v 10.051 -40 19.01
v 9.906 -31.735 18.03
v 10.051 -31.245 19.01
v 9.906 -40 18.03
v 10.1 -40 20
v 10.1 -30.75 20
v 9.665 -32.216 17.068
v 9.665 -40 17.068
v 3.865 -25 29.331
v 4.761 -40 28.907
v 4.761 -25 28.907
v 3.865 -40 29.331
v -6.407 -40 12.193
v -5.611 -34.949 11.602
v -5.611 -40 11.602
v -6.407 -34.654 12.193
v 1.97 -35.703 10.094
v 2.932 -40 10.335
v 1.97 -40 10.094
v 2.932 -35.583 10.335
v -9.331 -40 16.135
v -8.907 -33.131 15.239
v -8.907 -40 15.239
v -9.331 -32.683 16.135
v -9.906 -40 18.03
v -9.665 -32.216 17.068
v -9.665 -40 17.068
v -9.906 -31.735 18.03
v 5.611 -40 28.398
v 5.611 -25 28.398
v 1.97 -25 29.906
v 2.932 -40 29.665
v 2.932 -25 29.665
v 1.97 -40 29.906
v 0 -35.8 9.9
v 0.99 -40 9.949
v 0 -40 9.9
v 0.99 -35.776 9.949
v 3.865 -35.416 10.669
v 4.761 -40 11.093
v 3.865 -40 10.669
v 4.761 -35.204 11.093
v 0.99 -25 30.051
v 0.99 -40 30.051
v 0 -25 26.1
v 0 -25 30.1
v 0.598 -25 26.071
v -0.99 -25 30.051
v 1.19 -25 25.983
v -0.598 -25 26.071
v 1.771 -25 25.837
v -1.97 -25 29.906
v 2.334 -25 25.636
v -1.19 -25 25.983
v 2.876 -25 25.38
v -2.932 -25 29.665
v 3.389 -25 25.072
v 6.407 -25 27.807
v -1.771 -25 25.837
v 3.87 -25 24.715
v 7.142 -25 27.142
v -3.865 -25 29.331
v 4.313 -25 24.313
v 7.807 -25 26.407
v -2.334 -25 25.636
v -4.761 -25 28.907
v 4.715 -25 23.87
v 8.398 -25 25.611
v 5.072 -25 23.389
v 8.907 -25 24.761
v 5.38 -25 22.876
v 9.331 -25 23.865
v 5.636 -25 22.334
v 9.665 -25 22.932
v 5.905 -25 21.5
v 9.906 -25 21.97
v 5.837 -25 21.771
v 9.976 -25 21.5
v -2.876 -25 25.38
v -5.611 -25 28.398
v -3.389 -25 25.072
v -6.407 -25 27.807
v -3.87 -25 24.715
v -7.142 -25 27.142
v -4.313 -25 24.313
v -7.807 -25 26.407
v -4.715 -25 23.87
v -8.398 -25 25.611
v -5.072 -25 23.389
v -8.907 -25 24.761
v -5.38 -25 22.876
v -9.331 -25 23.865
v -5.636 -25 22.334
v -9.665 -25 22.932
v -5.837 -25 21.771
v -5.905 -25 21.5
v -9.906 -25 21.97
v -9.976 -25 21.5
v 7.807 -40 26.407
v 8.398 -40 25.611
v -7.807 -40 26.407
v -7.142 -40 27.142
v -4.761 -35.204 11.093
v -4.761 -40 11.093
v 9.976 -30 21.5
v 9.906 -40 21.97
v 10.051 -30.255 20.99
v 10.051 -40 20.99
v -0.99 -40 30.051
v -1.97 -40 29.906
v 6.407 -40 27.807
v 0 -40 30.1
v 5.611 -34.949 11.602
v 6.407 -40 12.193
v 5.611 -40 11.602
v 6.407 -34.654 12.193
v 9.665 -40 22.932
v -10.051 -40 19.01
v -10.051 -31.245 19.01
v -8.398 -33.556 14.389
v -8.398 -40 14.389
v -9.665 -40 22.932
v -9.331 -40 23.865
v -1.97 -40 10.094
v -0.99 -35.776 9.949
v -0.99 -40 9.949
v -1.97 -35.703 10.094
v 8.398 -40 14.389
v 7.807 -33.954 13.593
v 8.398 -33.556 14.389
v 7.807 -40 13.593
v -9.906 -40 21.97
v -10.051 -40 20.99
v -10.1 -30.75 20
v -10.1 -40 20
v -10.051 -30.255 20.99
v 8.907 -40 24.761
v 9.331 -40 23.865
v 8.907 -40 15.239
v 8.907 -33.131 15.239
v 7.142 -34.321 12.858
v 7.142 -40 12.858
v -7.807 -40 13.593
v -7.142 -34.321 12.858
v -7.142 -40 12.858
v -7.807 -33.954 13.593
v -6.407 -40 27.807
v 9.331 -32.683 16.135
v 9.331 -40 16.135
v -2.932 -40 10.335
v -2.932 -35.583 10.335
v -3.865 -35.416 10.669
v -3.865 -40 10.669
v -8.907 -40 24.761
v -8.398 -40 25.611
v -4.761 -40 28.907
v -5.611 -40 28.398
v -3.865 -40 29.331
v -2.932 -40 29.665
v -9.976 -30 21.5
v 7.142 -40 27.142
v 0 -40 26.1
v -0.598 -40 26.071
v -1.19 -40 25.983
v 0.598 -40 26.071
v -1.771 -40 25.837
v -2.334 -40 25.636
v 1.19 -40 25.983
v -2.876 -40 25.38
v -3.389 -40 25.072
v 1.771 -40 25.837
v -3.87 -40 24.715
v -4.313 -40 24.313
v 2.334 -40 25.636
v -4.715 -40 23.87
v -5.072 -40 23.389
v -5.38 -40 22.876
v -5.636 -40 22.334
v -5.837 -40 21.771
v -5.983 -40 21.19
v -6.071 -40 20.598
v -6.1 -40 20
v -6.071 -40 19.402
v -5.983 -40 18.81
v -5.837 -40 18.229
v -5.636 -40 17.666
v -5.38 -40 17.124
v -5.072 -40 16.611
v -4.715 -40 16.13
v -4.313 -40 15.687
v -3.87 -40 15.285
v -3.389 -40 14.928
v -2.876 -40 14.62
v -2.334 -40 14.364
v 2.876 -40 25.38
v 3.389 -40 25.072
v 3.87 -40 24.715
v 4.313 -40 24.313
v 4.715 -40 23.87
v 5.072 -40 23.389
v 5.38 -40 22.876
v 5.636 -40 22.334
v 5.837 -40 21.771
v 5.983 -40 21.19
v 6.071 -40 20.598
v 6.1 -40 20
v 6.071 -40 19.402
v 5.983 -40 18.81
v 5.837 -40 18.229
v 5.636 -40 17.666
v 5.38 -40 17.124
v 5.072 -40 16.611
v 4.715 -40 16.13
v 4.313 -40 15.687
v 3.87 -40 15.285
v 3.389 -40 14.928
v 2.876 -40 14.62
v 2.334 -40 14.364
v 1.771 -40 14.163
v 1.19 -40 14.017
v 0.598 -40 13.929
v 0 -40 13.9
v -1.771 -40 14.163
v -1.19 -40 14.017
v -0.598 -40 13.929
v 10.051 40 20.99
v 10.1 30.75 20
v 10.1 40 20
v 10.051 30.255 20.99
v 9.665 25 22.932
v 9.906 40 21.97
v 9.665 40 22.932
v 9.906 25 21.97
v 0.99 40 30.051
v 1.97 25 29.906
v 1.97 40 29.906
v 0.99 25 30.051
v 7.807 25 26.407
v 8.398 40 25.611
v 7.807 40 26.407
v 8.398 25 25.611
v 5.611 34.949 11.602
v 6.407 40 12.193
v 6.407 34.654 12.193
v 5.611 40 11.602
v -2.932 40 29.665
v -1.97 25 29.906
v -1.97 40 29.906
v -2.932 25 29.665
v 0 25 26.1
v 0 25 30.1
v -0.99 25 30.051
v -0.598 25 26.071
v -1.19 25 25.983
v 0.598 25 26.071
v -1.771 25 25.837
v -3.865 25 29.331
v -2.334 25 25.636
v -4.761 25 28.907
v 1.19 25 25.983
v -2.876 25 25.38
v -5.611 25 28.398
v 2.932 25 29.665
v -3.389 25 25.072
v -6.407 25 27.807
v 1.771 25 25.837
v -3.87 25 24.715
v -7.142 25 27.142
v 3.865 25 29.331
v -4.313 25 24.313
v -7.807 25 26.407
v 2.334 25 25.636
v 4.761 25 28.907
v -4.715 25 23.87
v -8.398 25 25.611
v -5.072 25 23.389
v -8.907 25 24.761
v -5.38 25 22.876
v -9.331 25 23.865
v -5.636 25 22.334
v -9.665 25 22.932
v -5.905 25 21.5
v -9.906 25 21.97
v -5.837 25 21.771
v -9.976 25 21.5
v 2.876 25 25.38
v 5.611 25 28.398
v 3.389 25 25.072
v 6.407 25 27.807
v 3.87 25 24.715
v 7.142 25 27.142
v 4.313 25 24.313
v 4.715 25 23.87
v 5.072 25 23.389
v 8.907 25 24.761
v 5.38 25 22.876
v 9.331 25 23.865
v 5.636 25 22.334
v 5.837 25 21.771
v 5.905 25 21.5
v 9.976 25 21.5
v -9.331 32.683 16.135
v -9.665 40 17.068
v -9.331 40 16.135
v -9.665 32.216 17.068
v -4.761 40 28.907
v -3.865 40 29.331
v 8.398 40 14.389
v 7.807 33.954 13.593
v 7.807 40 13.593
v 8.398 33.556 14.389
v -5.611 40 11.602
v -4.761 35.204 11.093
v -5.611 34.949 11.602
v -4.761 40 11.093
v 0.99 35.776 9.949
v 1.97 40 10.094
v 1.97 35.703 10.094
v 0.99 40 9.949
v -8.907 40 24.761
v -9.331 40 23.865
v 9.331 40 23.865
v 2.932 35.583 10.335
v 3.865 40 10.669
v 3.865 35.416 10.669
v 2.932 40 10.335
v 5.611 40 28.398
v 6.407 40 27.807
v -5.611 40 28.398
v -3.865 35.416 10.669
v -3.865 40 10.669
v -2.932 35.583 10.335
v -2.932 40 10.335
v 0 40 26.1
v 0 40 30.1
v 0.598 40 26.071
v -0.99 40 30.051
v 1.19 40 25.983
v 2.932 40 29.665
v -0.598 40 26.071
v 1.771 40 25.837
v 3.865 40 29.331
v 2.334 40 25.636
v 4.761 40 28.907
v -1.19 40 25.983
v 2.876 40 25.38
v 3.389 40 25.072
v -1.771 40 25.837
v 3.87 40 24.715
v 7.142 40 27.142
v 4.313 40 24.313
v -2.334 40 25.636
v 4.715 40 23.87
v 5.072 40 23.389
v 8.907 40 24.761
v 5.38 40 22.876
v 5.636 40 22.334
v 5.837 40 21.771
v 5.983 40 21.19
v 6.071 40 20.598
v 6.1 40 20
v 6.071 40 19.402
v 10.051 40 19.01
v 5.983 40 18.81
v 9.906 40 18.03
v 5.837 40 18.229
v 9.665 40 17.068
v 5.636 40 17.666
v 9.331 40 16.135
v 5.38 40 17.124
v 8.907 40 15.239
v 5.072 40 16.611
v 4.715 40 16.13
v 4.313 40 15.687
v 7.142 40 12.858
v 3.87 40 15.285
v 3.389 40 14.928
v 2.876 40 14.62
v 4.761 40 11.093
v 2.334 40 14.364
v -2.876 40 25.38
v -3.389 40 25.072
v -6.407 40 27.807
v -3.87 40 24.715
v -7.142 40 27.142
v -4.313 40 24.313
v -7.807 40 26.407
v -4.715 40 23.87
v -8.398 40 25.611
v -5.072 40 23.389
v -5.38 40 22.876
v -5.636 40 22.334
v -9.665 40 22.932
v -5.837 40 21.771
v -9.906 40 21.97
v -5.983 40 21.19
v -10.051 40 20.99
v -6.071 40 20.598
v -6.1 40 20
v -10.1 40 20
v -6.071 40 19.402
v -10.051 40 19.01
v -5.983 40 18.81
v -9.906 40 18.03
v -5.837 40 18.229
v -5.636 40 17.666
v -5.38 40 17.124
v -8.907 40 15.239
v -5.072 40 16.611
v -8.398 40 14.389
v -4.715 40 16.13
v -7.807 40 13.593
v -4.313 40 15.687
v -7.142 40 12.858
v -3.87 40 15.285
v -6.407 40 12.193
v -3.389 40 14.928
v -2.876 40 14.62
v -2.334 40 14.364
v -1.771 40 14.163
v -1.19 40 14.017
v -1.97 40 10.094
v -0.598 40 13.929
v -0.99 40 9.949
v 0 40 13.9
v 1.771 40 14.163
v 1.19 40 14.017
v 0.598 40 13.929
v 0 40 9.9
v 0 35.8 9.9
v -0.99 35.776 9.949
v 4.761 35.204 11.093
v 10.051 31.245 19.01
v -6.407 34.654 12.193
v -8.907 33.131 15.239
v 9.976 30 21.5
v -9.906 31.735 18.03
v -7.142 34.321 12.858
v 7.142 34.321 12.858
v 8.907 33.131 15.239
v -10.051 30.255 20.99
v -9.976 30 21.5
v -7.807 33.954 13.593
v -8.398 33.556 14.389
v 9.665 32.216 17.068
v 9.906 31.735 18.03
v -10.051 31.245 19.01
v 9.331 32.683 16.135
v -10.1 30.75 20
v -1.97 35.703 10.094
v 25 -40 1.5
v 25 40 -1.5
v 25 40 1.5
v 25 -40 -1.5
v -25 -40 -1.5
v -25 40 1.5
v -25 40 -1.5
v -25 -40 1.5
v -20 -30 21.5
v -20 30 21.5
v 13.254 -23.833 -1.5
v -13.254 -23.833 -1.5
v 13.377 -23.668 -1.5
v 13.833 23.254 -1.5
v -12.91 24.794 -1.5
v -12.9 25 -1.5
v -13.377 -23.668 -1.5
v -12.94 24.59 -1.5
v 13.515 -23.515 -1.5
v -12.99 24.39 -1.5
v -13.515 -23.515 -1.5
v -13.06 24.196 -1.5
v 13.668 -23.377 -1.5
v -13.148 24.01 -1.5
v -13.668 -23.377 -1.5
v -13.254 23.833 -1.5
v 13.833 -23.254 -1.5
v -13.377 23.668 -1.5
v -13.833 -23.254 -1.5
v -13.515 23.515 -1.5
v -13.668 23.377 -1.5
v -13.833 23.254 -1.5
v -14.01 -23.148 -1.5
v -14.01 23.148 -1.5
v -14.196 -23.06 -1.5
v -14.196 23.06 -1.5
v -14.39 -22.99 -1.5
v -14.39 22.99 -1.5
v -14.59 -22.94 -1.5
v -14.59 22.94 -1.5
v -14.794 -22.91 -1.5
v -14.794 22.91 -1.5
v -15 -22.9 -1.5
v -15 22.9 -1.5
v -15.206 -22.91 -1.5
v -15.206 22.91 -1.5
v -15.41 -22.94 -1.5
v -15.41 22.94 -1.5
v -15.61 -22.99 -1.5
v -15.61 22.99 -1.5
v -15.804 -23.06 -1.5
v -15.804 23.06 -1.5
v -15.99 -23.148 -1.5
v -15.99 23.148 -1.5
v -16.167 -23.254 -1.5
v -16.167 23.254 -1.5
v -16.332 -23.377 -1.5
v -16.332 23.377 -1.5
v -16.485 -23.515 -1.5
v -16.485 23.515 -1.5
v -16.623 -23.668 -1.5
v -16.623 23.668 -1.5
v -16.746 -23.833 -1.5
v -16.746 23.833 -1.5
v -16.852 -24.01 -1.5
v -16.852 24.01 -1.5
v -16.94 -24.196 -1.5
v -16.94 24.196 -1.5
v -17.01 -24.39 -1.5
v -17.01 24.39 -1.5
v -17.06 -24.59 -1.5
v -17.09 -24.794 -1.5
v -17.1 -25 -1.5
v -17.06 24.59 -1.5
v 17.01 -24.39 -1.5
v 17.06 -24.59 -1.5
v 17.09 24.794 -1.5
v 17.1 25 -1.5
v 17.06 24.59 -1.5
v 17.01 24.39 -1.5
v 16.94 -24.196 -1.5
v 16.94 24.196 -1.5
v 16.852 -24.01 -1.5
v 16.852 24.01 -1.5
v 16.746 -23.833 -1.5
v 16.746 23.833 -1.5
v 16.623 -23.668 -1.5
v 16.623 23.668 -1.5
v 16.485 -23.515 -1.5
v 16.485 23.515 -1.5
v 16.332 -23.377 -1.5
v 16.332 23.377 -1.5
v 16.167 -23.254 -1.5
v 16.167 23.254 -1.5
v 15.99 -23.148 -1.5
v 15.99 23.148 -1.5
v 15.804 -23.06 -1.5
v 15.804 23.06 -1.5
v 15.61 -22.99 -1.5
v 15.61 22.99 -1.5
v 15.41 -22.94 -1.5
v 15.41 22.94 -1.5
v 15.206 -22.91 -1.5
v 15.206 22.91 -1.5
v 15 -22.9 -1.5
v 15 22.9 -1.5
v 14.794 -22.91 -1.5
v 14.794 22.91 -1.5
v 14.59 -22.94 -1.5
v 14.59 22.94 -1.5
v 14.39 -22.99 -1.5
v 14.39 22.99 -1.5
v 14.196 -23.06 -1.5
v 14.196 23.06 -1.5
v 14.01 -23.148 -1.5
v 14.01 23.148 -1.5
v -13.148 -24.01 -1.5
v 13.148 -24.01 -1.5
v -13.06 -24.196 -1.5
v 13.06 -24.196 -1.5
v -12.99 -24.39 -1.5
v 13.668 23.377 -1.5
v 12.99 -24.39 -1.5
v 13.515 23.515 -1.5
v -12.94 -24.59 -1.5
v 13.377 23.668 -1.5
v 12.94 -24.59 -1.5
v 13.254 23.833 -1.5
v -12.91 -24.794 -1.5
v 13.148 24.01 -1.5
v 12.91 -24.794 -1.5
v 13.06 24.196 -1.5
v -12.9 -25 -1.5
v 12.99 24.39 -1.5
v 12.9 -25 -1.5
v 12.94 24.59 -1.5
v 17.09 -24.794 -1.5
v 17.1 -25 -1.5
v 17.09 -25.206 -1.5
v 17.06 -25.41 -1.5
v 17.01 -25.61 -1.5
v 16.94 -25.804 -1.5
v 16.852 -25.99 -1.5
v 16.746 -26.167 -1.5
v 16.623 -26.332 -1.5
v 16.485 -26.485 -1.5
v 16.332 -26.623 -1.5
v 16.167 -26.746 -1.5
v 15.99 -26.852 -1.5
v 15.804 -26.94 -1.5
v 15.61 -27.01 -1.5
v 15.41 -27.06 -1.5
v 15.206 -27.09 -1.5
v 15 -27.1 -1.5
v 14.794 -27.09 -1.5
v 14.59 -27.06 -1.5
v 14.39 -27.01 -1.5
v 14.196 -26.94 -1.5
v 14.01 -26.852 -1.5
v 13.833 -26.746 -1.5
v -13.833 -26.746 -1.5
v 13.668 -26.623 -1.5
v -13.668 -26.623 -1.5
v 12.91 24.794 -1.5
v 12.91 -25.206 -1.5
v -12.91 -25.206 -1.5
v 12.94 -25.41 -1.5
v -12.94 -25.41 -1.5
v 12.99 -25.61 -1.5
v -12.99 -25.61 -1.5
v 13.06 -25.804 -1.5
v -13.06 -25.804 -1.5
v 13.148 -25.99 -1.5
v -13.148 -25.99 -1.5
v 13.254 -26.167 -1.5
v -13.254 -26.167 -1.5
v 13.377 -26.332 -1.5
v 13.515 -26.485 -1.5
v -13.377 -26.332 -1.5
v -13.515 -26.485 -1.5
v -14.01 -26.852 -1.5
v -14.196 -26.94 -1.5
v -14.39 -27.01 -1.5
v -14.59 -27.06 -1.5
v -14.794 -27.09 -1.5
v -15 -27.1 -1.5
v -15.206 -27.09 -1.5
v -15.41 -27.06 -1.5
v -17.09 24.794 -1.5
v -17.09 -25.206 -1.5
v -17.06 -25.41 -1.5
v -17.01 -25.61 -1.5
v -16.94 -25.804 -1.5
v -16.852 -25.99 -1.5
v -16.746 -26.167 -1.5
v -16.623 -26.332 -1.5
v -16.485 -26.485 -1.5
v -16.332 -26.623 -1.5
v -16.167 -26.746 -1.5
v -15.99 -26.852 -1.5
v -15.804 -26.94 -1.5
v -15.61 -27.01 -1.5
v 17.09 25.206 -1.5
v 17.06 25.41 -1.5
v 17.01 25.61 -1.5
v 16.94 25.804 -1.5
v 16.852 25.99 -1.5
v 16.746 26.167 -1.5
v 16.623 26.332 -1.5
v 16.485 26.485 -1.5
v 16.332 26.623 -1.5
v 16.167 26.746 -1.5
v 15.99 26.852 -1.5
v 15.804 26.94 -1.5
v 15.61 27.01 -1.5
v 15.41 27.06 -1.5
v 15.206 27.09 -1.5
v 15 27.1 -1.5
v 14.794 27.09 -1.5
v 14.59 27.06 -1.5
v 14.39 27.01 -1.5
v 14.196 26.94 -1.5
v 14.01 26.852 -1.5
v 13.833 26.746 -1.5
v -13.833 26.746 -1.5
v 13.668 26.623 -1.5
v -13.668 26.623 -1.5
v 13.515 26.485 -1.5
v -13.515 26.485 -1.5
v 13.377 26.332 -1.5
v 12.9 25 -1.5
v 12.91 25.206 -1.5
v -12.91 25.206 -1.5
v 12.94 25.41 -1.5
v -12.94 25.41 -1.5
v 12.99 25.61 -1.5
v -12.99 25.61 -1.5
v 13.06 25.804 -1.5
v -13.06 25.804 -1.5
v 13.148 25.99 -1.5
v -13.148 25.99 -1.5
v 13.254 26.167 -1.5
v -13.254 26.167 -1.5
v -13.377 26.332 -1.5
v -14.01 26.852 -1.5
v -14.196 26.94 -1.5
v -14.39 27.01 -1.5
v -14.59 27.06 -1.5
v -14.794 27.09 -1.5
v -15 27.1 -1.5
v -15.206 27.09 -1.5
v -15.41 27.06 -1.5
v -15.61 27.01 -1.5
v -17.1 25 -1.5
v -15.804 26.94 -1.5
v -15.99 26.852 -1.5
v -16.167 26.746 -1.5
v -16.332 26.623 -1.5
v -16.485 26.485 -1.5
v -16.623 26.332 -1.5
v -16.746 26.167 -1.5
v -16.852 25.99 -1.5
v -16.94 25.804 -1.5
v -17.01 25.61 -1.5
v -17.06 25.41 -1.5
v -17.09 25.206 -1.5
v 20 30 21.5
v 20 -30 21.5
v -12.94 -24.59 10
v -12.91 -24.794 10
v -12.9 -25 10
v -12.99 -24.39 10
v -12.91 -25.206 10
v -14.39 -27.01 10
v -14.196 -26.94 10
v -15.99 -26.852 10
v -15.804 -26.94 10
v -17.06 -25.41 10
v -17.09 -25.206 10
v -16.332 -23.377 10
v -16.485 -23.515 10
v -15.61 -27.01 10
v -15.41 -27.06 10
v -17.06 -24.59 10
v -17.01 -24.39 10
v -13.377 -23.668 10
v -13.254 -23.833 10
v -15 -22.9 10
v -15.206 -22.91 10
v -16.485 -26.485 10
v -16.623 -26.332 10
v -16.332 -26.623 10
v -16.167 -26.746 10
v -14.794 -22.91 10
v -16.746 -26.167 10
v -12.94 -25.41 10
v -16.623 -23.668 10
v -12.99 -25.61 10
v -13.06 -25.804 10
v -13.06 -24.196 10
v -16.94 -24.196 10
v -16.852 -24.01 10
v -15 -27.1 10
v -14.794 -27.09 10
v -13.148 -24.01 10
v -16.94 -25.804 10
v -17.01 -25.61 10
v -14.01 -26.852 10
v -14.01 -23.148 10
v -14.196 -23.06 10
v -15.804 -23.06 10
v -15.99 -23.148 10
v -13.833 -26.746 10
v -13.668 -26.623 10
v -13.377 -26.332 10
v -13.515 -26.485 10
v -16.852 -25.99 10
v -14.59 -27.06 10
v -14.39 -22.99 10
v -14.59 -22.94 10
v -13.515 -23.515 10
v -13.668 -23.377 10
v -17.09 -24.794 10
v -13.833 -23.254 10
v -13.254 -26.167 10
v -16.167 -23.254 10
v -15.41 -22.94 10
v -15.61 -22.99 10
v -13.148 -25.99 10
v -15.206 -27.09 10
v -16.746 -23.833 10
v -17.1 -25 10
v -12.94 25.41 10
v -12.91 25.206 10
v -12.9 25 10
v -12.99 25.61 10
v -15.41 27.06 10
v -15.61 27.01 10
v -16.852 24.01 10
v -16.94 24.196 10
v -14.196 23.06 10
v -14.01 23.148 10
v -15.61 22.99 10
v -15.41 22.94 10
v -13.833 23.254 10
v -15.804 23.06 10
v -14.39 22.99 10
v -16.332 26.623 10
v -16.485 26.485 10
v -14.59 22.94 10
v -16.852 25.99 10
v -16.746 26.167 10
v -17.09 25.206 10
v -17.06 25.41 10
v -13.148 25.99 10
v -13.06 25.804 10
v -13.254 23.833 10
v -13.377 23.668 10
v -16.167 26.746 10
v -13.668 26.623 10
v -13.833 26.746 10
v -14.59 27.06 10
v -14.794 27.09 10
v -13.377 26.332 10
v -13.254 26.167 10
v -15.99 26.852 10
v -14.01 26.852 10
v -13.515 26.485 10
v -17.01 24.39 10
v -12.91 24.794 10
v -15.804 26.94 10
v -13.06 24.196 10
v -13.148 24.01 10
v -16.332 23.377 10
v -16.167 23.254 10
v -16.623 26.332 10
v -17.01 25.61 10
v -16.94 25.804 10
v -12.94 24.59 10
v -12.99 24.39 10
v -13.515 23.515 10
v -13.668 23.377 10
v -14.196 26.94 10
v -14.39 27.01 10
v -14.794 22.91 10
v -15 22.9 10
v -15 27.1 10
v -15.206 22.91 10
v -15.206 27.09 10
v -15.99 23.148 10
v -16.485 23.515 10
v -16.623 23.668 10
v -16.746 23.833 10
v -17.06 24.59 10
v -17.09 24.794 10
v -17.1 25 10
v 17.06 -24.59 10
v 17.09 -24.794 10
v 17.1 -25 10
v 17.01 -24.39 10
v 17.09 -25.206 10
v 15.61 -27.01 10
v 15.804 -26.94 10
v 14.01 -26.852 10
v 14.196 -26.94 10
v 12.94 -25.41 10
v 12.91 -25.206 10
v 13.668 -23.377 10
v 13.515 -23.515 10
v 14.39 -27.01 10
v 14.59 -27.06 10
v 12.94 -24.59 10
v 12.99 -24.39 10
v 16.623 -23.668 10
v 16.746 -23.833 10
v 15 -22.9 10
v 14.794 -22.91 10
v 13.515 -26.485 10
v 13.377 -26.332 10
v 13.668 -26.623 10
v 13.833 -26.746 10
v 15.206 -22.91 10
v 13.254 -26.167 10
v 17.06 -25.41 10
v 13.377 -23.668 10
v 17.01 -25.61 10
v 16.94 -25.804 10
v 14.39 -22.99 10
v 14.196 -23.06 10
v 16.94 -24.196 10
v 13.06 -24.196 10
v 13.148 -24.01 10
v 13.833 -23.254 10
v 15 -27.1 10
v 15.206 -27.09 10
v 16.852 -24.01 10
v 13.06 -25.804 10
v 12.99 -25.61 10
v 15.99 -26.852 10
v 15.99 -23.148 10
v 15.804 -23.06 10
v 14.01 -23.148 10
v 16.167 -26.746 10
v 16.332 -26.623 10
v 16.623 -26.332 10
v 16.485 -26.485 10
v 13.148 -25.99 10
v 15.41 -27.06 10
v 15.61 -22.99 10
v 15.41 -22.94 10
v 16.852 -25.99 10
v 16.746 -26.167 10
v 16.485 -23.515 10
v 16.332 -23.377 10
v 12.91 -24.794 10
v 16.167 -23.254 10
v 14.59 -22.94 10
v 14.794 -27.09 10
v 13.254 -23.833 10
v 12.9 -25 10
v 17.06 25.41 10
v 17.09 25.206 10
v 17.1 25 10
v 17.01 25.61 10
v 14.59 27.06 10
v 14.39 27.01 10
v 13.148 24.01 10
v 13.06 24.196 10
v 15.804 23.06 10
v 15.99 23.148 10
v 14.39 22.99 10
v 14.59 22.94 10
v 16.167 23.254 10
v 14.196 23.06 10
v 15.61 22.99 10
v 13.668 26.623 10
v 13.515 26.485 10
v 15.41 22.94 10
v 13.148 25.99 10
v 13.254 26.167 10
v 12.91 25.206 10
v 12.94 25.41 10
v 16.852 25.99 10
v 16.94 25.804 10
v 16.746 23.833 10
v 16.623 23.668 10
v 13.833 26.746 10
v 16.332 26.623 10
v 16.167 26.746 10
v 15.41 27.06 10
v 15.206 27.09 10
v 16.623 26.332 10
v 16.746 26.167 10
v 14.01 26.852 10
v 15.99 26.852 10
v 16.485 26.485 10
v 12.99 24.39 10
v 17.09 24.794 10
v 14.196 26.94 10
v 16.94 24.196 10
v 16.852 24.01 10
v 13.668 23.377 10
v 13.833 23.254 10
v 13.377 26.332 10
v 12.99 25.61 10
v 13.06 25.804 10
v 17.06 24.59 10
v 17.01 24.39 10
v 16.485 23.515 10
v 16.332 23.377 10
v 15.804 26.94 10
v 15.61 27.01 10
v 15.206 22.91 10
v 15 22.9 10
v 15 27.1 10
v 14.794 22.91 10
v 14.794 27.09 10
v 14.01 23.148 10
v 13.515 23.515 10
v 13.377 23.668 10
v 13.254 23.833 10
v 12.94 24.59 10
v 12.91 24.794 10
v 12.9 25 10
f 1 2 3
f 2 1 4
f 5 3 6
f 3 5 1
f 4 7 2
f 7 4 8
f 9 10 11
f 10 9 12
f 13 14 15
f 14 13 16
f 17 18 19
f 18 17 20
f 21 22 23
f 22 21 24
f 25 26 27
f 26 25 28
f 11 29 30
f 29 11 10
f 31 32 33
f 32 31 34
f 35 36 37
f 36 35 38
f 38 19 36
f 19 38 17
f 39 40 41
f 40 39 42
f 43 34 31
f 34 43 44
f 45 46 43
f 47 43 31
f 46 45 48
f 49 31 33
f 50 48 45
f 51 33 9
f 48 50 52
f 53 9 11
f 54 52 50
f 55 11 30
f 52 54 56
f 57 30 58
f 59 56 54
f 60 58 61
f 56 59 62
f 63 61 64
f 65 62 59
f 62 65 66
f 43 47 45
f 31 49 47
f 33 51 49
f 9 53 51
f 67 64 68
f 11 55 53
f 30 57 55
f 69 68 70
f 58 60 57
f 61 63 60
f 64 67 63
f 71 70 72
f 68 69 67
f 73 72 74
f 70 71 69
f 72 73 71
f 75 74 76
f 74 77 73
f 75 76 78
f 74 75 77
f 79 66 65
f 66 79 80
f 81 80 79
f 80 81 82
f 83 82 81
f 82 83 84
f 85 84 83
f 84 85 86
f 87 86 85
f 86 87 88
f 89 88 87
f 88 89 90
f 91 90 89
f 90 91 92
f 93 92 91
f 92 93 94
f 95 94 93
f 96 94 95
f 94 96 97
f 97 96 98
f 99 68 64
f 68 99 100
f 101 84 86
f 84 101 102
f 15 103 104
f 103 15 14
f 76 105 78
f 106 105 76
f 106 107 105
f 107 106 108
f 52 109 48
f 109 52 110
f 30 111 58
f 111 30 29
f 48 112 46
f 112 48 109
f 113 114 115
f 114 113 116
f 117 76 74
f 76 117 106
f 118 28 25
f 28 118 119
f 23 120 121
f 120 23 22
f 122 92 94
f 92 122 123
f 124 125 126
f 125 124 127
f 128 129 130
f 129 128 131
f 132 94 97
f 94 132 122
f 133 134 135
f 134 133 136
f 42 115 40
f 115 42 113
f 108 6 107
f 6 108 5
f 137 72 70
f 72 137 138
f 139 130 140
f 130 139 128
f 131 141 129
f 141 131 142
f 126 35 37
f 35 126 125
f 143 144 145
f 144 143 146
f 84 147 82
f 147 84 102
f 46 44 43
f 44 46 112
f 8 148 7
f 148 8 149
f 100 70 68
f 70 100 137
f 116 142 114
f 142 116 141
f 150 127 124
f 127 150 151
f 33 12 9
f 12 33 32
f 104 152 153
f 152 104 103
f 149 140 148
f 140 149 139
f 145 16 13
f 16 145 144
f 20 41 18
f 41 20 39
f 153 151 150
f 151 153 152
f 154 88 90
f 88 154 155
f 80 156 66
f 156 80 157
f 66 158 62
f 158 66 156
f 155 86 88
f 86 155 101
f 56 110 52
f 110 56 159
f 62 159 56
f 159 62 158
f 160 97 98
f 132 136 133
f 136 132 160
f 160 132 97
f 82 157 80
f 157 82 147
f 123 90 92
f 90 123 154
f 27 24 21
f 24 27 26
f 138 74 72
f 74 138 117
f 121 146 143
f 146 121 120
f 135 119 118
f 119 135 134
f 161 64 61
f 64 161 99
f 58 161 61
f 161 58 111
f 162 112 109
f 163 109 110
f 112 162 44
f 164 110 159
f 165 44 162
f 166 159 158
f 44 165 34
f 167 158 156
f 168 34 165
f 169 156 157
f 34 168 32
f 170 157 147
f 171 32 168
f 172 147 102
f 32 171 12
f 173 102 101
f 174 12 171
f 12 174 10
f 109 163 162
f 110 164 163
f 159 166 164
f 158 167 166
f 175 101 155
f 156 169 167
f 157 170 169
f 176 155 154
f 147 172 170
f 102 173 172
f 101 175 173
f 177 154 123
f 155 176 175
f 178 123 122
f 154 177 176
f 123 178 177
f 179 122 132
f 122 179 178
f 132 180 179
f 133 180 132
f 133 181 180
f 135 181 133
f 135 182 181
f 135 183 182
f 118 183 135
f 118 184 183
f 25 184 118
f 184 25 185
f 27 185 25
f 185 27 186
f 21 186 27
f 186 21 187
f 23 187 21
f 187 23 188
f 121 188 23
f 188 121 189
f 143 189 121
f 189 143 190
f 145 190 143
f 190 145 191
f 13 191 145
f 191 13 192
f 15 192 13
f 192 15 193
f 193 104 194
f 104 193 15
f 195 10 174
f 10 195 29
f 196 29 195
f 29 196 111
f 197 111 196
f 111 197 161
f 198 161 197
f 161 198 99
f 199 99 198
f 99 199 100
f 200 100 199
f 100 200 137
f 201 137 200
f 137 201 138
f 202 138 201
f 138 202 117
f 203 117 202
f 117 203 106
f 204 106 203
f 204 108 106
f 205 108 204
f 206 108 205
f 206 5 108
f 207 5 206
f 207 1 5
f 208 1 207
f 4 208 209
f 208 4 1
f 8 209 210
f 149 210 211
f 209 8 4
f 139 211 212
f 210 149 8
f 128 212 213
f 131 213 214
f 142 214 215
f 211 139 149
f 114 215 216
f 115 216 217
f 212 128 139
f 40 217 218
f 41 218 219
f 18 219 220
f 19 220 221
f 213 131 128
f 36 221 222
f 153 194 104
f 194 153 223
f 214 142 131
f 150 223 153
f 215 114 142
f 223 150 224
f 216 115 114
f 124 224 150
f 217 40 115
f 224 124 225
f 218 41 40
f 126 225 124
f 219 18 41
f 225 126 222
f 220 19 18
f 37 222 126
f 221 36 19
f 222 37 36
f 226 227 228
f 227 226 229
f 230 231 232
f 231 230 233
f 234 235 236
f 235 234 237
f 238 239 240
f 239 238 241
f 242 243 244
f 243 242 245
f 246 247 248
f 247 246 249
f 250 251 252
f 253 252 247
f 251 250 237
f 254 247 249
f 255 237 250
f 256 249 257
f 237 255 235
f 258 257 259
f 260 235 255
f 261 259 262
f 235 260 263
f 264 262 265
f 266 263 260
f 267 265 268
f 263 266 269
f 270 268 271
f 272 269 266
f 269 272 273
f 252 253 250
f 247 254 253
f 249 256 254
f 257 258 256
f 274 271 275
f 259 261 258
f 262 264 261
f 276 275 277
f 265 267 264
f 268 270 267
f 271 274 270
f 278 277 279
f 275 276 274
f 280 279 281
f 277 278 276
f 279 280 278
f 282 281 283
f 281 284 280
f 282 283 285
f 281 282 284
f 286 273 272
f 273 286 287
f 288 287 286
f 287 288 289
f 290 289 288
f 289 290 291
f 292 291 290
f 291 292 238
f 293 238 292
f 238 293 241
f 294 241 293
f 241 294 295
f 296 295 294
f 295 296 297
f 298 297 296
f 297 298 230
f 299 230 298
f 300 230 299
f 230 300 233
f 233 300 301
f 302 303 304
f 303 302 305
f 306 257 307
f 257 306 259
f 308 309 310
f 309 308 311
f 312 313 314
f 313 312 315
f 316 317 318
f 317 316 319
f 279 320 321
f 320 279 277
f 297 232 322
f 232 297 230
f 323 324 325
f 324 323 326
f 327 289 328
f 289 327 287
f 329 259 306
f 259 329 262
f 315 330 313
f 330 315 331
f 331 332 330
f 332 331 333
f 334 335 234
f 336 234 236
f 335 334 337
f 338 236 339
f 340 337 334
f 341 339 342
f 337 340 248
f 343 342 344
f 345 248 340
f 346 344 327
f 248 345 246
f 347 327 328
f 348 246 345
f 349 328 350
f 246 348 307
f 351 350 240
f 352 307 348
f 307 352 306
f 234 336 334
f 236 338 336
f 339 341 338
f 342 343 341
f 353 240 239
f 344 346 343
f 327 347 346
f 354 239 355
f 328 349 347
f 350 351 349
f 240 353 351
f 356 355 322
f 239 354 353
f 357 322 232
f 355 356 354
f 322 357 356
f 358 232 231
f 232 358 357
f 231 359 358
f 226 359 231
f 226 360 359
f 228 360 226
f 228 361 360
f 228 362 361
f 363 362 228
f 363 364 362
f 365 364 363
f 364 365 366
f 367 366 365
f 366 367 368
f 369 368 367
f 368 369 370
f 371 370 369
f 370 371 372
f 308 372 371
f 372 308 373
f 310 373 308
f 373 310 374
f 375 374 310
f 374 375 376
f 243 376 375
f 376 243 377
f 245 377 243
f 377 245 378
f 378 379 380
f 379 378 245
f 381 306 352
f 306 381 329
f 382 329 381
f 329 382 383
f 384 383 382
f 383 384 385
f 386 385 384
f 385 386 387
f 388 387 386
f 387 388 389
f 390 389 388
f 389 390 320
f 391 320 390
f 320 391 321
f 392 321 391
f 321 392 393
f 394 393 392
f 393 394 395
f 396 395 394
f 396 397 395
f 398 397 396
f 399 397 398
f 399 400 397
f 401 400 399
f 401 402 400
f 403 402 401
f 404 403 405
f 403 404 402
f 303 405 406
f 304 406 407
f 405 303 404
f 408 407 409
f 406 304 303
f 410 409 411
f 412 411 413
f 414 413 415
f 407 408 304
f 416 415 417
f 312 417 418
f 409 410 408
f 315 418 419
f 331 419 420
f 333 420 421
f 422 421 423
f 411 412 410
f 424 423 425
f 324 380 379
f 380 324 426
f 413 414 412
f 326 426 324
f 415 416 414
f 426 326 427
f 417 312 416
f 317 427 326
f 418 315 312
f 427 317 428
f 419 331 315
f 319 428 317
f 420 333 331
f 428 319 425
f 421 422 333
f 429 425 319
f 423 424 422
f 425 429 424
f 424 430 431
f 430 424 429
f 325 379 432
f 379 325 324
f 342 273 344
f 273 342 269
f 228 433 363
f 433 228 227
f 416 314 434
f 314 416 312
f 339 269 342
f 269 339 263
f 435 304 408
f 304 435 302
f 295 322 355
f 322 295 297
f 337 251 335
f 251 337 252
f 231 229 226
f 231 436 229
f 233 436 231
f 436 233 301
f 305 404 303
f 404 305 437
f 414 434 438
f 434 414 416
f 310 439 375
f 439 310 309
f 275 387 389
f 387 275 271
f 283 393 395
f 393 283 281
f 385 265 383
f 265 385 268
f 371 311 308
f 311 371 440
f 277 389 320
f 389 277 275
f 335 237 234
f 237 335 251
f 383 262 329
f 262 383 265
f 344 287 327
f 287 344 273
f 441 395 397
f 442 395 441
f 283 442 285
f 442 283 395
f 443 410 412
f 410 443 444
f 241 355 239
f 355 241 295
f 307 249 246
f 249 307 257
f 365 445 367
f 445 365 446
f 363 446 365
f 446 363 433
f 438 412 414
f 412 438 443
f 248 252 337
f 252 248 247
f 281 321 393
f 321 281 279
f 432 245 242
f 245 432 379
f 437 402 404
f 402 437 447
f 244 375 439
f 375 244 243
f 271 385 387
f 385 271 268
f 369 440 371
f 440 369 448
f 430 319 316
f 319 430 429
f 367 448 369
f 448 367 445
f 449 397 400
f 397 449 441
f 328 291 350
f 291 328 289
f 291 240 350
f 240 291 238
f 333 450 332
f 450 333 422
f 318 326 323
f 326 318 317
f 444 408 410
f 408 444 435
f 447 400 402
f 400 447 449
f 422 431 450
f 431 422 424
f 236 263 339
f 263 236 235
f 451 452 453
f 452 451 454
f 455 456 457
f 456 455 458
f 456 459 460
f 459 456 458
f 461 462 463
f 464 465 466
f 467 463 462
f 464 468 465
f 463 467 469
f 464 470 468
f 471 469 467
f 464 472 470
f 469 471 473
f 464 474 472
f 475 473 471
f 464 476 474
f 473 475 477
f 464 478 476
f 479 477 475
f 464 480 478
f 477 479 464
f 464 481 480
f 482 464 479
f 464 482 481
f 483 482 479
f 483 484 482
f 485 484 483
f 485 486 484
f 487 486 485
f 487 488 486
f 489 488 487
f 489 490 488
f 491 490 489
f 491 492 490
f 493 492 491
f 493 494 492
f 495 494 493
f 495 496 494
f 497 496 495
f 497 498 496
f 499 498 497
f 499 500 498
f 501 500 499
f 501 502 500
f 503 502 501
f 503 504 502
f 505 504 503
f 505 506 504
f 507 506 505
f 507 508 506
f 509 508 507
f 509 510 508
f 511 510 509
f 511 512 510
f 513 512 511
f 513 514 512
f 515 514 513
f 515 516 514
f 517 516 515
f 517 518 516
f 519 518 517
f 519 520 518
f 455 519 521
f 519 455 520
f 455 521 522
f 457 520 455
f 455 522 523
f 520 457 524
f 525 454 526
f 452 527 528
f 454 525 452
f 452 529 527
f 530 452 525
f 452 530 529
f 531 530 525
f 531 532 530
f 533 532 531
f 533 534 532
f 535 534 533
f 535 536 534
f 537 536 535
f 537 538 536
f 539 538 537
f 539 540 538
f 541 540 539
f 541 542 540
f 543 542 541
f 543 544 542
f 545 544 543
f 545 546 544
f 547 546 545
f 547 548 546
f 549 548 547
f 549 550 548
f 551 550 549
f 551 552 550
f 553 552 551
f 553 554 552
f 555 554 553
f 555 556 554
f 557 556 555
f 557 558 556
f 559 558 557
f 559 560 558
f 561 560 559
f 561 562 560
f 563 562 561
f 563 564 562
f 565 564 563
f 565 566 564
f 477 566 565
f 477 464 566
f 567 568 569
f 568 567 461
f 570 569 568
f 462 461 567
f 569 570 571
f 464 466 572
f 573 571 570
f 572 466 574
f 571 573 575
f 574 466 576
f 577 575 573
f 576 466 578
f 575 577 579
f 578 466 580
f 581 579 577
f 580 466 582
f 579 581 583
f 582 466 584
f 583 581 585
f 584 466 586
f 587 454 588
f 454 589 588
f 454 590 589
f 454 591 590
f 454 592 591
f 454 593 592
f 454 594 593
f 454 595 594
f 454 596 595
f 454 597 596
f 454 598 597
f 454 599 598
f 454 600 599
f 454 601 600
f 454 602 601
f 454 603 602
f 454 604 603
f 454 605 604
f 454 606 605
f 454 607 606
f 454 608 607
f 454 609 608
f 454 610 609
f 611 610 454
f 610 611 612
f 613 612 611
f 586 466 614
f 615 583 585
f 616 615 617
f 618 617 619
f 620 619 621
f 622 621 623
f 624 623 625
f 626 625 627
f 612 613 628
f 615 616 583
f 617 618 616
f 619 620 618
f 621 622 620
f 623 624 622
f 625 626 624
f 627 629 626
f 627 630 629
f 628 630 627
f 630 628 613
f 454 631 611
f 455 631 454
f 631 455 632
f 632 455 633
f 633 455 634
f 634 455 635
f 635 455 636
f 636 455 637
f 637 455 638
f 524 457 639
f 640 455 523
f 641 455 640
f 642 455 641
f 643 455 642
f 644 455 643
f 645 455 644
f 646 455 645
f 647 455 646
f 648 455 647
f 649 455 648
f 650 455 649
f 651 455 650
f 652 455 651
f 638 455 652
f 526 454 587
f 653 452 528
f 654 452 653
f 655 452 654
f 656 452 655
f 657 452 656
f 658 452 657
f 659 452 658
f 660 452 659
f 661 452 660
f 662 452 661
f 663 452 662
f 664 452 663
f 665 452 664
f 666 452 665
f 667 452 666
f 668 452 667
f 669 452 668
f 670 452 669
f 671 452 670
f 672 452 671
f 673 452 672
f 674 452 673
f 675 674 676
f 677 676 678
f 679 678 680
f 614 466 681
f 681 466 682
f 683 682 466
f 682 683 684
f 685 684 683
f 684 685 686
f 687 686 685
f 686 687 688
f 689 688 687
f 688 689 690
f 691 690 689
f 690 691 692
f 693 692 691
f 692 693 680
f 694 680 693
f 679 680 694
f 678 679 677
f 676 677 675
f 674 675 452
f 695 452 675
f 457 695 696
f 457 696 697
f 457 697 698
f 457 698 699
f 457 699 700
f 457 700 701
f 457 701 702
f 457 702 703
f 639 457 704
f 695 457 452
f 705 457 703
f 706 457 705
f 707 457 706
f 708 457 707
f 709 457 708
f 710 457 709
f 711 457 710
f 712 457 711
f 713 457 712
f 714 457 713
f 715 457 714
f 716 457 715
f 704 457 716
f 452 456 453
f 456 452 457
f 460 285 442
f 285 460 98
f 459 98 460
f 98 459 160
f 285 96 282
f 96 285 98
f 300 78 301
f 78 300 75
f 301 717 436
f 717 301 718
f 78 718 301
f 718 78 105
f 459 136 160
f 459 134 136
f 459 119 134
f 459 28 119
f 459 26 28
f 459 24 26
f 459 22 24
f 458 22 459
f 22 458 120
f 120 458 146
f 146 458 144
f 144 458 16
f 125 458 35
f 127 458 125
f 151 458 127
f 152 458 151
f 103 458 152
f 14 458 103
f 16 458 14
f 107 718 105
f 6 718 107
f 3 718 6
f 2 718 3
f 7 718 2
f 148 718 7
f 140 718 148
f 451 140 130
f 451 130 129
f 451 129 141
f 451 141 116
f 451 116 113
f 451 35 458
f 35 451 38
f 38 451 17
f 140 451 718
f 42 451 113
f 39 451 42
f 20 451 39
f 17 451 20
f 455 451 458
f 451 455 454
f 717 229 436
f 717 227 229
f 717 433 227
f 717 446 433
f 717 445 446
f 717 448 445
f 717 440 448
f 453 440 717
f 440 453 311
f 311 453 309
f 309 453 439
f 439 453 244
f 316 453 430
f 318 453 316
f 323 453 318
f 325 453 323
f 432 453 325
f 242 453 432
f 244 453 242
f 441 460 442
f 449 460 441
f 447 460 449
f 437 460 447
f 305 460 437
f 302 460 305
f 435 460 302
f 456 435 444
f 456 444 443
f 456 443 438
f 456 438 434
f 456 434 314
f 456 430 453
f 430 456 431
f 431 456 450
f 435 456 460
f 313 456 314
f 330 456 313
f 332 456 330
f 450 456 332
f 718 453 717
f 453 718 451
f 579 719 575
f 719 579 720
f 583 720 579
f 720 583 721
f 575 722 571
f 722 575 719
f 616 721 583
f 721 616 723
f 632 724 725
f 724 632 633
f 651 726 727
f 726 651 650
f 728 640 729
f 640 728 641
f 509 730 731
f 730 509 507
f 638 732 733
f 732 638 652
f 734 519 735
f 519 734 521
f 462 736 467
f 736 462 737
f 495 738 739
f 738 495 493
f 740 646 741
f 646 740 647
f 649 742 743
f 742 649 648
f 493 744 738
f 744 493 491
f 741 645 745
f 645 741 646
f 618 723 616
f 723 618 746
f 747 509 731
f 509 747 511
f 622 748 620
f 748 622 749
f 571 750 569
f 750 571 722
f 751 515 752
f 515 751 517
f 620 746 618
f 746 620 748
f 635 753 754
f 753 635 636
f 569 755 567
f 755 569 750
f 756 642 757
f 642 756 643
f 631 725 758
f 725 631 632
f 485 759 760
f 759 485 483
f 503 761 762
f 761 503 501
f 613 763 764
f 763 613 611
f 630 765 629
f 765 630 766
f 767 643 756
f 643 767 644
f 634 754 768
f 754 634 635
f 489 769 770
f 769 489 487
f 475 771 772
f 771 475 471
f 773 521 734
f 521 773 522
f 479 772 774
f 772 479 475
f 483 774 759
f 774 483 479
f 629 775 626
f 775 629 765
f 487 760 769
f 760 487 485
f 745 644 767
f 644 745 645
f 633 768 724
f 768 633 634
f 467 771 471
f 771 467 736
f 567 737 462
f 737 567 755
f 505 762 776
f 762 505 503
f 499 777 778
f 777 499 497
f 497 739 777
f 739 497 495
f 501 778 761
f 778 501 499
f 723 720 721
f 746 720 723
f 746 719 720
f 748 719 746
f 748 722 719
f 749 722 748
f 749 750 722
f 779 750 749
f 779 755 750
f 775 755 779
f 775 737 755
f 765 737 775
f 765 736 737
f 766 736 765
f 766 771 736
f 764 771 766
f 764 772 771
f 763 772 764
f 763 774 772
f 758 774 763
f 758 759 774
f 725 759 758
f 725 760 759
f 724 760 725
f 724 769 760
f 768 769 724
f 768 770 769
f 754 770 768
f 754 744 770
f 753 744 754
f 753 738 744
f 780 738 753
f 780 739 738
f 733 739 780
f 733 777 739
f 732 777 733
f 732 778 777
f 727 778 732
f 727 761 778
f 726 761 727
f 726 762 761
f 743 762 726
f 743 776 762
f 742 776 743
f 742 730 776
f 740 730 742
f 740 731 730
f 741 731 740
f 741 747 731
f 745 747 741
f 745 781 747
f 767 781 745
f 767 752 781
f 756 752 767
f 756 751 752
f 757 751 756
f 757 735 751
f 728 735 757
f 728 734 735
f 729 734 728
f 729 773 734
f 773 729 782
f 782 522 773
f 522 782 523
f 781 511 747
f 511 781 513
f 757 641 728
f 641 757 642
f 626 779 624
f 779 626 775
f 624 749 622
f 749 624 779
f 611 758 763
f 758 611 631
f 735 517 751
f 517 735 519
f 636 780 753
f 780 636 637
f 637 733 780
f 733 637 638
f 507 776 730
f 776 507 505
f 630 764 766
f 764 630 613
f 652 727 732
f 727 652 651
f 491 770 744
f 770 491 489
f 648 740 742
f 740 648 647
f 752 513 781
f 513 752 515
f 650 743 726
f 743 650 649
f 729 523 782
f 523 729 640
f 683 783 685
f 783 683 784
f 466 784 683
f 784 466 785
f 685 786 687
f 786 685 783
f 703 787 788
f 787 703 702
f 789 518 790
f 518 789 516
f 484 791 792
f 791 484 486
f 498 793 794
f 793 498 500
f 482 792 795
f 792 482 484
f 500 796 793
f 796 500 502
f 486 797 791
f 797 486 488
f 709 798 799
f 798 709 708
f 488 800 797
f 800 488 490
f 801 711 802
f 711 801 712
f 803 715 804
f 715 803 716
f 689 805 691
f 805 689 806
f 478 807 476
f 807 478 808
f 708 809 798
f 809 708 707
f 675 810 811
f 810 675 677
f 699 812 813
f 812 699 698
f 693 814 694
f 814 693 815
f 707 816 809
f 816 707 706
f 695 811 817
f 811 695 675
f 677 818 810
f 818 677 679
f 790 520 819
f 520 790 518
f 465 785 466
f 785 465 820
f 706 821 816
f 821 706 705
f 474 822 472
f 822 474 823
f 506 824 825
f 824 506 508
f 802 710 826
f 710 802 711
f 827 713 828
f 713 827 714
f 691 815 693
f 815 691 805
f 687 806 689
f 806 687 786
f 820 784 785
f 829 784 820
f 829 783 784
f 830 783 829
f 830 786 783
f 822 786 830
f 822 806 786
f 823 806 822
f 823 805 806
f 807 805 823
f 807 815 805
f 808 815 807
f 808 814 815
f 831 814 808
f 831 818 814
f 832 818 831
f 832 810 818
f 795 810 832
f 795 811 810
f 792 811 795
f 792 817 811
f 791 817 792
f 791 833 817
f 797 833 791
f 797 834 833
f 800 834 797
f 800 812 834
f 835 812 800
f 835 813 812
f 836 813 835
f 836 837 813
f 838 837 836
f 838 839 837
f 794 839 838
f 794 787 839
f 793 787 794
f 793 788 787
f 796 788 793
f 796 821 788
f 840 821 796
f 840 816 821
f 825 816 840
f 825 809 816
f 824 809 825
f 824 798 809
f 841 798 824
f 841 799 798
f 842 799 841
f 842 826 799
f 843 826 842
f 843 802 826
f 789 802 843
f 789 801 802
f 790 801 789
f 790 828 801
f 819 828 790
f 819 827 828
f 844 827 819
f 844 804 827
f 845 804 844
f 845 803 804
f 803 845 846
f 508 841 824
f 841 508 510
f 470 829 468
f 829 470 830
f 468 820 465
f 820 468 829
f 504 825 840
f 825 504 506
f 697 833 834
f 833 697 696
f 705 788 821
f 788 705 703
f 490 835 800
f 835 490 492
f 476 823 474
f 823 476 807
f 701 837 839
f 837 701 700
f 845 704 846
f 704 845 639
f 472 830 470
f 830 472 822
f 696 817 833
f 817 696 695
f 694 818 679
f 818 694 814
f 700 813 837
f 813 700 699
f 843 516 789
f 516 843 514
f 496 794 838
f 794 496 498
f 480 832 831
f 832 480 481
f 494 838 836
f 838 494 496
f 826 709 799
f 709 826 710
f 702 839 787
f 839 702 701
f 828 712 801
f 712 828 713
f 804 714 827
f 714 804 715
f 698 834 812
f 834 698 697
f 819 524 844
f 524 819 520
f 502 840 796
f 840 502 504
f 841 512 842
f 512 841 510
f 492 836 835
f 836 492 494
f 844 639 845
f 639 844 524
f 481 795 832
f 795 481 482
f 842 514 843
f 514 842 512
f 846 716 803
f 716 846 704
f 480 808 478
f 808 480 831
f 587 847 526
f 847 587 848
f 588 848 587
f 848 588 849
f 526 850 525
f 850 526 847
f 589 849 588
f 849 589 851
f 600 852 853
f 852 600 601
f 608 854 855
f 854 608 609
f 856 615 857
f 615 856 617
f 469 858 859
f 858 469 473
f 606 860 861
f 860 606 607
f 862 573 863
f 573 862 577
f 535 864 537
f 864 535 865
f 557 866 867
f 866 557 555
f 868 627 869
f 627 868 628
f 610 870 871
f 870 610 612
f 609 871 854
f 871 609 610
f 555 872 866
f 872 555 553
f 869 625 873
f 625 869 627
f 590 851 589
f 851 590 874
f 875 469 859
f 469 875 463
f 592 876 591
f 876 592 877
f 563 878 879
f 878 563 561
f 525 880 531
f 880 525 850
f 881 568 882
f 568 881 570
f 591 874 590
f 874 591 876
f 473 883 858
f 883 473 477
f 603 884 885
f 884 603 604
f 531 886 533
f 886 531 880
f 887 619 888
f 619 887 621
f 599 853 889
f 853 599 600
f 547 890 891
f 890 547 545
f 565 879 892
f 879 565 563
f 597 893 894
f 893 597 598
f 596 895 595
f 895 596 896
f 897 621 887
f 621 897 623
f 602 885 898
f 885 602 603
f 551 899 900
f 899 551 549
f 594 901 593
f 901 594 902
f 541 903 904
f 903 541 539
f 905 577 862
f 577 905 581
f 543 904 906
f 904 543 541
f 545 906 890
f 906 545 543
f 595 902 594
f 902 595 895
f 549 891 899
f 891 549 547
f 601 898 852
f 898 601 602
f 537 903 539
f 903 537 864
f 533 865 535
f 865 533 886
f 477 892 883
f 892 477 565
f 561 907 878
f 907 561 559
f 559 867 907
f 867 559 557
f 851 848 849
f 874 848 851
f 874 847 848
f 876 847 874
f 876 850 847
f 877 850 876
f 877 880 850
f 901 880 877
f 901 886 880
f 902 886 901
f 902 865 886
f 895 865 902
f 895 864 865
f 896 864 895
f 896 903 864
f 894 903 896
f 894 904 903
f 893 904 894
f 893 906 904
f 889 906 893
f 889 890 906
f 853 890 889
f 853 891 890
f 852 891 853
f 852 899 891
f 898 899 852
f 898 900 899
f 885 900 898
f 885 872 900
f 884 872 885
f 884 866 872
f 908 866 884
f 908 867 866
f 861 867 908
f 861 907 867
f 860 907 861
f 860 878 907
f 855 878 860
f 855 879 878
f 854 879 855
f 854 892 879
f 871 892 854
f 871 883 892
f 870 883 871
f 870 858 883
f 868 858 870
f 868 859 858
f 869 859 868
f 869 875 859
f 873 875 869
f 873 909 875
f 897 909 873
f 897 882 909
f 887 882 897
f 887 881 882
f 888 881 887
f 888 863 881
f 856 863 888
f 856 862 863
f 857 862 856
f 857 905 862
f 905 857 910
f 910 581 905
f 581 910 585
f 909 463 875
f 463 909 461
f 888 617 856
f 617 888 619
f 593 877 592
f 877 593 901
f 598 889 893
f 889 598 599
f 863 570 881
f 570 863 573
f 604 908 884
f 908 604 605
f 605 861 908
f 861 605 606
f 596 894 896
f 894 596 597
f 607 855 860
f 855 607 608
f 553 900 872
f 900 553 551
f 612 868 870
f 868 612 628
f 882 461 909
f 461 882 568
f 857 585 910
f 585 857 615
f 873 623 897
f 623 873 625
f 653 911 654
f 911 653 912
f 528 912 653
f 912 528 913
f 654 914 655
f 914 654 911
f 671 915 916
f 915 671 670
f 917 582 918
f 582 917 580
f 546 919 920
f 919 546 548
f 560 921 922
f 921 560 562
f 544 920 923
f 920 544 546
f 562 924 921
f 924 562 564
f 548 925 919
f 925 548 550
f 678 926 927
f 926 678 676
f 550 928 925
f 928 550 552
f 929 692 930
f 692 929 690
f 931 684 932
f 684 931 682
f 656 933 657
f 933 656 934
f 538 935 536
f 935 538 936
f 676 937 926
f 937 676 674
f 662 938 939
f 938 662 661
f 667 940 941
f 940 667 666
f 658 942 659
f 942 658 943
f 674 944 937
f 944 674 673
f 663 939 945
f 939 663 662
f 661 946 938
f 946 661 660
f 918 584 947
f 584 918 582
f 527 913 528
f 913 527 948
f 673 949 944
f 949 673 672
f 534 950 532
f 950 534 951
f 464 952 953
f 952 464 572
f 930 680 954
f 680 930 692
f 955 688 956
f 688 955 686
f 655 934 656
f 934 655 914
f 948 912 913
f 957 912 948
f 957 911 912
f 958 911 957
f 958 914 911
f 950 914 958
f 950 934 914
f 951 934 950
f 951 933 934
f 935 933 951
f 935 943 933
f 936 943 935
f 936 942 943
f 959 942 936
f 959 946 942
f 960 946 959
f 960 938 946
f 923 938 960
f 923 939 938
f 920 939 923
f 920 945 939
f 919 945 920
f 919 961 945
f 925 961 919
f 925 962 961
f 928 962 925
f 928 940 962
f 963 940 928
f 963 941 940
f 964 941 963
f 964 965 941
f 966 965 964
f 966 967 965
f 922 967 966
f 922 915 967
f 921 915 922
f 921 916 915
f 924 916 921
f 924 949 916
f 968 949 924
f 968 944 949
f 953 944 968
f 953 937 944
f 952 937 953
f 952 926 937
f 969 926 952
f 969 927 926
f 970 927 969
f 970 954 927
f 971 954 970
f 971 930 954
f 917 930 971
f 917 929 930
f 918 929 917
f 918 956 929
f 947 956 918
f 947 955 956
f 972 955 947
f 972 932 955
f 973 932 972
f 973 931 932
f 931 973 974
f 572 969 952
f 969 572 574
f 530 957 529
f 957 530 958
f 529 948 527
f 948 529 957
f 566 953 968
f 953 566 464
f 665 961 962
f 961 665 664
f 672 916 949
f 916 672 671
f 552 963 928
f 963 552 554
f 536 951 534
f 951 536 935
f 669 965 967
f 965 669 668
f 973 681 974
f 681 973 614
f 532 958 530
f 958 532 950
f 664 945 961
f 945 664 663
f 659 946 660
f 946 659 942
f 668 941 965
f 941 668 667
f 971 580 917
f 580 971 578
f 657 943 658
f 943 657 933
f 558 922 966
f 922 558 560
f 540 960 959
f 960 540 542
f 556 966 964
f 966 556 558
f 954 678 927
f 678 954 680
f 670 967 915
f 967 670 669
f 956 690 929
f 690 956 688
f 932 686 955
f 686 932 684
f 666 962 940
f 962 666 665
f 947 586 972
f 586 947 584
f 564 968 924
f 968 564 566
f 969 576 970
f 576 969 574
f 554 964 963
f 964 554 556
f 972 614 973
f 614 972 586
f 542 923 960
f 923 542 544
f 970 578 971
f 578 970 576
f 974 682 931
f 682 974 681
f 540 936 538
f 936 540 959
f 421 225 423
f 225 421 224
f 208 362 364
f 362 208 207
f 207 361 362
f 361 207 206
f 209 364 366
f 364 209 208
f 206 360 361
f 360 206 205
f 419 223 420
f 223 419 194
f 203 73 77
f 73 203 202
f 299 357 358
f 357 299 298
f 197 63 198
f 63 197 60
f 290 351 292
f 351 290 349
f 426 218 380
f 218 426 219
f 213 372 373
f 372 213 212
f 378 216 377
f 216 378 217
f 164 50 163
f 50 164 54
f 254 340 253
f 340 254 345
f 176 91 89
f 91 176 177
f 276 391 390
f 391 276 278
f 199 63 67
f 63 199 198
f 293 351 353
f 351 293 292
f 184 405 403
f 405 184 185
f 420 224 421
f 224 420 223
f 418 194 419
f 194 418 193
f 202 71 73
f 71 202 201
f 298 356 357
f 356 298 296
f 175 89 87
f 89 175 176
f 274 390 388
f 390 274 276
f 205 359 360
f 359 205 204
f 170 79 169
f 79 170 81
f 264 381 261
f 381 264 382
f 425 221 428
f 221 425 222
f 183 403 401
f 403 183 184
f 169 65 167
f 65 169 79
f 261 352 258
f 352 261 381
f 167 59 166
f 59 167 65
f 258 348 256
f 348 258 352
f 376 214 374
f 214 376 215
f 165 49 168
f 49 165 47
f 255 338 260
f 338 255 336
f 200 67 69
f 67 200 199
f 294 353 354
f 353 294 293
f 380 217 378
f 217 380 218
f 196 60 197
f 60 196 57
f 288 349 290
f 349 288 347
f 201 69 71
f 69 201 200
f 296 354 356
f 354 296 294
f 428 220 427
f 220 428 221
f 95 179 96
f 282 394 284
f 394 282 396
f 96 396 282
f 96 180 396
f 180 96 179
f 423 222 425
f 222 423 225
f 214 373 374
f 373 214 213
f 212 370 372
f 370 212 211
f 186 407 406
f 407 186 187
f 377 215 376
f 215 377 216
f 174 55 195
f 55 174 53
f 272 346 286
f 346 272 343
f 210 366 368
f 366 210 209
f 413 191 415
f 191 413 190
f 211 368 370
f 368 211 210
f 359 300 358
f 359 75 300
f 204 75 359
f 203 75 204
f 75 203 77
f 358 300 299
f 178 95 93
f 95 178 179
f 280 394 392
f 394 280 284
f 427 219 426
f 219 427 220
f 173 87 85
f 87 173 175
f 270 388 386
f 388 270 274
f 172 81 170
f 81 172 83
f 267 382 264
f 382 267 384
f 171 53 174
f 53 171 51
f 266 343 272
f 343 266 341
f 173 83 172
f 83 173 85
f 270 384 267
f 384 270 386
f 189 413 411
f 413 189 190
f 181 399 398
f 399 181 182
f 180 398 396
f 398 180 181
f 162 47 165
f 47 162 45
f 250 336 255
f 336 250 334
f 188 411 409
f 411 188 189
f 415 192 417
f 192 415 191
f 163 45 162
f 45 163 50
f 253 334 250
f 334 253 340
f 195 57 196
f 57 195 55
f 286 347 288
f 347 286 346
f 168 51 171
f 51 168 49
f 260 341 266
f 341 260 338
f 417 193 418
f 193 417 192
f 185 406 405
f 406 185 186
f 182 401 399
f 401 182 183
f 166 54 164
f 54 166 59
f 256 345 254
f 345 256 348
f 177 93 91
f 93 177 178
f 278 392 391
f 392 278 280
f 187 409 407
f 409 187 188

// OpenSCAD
// Uchyt nosnikku kridla k trupu
// Drzi karbonovou trubku o12mm a pripevnuje kridlo k trupu
// Material: PET-G, 30% vypln, 4 perimetry

$fn = 64;

nosnik_prumer = 12.2;
sirka = 80; // sirka uchytu (osa Y, v trupu)
vyska = 40;
hloubka = 50; // ve smeru hloubky kridla
tl = 3;

module uchyt_nosnik() {
    difference() {
        union() {
            // Hlavni blok
            hull() {
                translate([0, 0, 0])
                    cube([hloubka, sirka, 3], center=true);
                translate([0, 0, vyska/2])
                    cube([hloubka - 10, sirka - 20, 3], center=true);
            }

            // Valcove vedeni pro nosnik (obe strany)
            for (y = [-1, 1]) {
                translate([0, y * (sirka/2), vyska/2])
                    rotate([90 * y, 0, 0])
                        cylinder(d=nosnik_prumer + 8, h=15);
            }
        }

        // Pruchod pro nosnik
        translate([0, -(sirka/2 + 20), vyska/2])
            rotate([-90, 0, 0])
                cylinder(d=nosnik_prumer, h=sirka + 40);

        // Pritahovaci sroub (svira nosnik)
        for (y = [-1, 1]) {
            translate([0, y * (sirka/2 + 5), vyska/2])
                rotate([0, 90, 0])
                    cylinder(d=3.2, h=hloubka + 10, center=true);
            // Rez pro severni silu
            translate([0, y * (sirka/2 + 5), vyska/2])
                cube([1, 5, nosnik_prumer + 10], center=true);
        }

        // Montazni srouby k trupu (4x M4)
        for (x = [-1, 1]) {
            for (y = [-1, 1]) {
                translate([x * 15, y * 25, -5])
                    cylinder(d=4.2, h=15);
                // Zapustena hlava
                translate([x * 15, y * 25, -5])
                    cylinder(d=8, h=3);
            }
        }
    }
}

uchyt_nosnik();
